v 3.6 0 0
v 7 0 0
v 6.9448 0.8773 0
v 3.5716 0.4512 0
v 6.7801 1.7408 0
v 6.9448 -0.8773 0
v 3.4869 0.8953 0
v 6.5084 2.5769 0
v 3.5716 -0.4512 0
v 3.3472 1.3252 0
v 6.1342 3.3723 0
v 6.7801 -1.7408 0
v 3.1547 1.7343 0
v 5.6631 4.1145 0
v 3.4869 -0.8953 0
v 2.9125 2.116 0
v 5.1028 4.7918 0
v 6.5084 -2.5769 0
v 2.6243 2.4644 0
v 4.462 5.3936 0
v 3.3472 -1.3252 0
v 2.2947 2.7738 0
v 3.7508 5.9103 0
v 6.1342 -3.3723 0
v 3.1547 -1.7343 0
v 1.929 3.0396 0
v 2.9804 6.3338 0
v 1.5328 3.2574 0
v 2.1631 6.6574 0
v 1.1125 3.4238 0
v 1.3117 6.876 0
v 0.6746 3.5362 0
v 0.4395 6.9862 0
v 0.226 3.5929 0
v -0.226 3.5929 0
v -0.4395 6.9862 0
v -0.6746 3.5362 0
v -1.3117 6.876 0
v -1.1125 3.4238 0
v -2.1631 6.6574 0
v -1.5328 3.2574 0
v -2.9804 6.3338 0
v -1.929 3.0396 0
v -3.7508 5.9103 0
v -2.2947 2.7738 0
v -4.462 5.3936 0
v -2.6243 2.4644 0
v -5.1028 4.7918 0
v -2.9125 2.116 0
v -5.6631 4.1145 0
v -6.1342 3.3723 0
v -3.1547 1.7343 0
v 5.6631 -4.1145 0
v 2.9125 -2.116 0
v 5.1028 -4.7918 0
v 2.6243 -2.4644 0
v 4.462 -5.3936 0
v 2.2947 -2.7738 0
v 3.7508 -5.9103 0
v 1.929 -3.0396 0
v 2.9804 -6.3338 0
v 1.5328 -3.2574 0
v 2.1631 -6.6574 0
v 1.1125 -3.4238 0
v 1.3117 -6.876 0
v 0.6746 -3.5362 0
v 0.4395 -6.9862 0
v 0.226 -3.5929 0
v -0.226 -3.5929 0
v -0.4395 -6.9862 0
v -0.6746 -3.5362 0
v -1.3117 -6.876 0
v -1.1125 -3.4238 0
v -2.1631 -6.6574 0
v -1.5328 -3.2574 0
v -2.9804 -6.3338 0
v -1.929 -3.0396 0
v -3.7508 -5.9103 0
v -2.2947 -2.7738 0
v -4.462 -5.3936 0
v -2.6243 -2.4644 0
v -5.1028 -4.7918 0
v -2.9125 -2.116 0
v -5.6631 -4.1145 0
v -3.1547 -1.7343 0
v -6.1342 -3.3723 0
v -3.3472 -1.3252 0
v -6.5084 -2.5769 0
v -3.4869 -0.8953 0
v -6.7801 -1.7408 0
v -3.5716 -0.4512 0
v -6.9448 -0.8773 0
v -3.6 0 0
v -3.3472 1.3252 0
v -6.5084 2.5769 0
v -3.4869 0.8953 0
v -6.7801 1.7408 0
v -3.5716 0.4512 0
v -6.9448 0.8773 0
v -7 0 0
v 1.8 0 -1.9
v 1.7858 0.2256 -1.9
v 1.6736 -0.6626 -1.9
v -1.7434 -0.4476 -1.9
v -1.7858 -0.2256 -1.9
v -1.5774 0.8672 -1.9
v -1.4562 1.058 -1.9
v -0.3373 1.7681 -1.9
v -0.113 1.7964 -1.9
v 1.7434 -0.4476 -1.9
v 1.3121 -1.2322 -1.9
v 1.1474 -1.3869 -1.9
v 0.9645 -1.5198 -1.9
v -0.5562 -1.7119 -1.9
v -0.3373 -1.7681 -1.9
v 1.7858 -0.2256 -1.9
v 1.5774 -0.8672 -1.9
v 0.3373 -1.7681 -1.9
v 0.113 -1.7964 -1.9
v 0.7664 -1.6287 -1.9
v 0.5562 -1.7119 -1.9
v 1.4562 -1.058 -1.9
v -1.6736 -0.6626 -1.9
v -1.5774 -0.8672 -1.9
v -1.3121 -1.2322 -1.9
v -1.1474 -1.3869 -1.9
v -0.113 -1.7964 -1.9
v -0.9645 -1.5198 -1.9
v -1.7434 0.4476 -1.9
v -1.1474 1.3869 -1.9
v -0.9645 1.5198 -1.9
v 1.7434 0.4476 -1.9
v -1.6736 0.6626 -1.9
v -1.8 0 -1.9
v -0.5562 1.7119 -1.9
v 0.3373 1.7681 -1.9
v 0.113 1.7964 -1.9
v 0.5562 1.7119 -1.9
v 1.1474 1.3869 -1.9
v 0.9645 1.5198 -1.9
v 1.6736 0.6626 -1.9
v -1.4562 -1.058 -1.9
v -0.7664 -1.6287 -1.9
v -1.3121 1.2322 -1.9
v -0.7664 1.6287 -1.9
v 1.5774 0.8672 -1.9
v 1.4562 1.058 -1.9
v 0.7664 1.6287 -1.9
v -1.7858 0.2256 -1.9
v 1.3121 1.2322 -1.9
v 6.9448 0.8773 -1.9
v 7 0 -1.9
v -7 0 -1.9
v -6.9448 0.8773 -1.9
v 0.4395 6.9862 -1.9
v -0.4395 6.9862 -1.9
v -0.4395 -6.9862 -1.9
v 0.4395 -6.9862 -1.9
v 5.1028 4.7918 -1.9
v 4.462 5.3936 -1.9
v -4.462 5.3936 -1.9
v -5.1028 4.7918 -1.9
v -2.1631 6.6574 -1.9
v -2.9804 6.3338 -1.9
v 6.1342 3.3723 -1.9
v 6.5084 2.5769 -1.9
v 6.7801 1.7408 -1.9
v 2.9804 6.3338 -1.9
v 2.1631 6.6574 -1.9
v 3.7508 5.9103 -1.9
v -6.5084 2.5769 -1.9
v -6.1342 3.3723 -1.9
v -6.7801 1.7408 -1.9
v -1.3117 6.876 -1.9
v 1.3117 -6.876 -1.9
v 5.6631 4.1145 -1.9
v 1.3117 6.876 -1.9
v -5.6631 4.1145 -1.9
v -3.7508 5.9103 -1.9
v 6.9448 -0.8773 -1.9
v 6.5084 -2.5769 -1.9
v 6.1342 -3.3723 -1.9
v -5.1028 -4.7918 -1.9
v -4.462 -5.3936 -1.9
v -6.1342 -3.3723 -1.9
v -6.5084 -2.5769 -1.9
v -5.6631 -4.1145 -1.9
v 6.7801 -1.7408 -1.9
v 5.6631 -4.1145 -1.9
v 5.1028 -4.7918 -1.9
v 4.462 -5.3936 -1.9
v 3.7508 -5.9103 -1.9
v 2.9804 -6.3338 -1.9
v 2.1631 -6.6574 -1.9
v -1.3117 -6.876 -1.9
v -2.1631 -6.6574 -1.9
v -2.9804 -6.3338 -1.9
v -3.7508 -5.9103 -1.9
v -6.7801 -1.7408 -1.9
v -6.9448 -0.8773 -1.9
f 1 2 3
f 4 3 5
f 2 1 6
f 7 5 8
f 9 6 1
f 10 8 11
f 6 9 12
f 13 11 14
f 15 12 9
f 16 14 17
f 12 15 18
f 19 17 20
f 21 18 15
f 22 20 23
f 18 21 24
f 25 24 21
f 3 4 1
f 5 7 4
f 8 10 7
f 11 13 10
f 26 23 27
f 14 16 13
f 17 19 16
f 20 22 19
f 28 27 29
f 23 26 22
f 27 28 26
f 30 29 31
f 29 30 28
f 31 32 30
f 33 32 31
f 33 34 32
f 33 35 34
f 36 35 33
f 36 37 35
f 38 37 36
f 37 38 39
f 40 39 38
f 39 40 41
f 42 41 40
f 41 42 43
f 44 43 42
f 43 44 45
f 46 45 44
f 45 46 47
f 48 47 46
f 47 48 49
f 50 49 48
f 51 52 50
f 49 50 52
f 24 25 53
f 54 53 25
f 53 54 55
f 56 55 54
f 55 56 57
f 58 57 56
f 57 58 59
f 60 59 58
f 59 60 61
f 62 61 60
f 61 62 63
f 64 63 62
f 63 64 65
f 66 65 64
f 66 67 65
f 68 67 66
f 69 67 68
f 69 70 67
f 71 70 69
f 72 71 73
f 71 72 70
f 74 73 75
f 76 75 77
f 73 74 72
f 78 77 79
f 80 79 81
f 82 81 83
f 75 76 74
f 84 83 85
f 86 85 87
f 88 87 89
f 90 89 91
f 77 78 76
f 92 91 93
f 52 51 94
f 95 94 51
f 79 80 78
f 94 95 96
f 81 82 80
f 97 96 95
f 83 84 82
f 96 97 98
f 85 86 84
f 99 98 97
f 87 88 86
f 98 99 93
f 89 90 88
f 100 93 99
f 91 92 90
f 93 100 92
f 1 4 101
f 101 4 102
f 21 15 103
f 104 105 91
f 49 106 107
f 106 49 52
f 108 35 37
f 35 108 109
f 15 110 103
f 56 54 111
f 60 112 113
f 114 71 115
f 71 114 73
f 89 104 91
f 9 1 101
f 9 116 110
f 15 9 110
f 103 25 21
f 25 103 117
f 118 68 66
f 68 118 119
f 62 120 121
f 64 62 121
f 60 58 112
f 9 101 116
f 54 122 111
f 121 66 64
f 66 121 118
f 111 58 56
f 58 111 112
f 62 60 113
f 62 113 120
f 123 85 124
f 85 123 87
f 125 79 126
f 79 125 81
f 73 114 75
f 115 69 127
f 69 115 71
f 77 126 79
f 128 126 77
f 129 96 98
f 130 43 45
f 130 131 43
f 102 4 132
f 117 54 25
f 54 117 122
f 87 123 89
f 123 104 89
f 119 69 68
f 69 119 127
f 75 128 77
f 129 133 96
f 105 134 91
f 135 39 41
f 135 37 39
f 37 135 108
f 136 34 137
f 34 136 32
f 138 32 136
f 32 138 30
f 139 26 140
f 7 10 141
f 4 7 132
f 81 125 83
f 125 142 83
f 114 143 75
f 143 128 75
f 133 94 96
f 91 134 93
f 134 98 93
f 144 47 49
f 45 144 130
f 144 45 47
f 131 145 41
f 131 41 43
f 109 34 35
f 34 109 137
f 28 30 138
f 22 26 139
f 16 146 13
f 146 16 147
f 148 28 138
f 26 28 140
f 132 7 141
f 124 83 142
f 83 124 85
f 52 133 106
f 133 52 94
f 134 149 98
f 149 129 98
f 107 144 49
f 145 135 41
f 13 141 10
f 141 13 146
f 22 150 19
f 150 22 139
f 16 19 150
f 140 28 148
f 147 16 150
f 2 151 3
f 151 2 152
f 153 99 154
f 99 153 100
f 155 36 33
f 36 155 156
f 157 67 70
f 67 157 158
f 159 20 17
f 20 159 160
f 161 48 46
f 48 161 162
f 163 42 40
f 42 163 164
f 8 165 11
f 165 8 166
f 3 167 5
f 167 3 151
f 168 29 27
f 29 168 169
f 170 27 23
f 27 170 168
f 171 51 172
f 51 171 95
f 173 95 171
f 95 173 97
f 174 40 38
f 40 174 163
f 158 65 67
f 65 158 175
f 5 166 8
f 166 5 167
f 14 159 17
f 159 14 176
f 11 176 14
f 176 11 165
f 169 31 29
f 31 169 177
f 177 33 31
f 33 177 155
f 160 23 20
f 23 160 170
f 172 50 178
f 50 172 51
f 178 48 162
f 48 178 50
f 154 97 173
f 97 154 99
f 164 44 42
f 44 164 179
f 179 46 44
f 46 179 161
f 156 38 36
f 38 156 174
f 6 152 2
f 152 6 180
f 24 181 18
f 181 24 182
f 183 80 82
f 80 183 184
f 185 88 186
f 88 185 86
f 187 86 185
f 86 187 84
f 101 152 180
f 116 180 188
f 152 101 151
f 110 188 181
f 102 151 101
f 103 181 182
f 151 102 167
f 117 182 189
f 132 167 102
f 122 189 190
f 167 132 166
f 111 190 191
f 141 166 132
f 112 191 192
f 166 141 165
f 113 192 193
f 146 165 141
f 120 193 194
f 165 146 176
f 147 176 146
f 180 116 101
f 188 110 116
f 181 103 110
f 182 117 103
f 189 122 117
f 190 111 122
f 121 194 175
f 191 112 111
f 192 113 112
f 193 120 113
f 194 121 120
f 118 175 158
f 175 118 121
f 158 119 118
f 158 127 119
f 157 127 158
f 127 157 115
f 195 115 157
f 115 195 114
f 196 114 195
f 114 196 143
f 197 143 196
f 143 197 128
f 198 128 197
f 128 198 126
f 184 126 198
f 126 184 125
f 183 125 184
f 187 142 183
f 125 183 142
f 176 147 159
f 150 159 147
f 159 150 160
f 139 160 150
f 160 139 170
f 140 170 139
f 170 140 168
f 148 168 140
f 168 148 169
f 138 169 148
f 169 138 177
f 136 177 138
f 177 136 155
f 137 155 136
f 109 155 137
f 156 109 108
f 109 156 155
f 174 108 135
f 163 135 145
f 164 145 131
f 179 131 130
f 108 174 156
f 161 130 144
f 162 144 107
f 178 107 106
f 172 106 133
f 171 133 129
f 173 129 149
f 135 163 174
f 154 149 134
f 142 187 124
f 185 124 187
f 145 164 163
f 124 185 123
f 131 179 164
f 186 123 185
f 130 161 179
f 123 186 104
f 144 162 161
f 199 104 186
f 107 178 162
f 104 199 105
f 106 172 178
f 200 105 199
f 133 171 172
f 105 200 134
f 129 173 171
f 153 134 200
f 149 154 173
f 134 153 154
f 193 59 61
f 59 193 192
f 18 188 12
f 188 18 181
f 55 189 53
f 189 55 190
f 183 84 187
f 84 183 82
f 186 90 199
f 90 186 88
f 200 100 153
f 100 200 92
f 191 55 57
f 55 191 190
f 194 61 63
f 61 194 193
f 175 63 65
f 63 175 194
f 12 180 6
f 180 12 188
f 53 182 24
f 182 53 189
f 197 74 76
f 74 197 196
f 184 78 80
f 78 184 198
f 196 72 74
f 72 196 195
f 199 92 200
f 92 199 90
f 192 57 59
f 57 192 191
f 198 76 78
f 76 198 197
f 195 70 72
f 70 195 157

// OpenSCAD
$fn = 50;


difference() {
	union() {
		translate(v = [0, 0, -1.9000000000]) {
			cylinder(h = 1.9000000000, r = 7.0000000000);
		}
	}
	union() {
		translate(v = [0, 0, 0]) {
			rotate(a = [0, 0, 0]) {
				difference() {
					union() {
						translate(v = [0, 0, -4.9000000000]) {
							cylinder(h = 4.9000000000, r = 1.5000000000);
						}
						translate(v = [0, 0, -1.9000000000]) {
							cylinder(h = 1.9000000000, r1 = 1.8000000000, r2 = 3.6000000000);
						}
						translate(v = [0, 0, -4.9000000000]) {
							cylinder(h = 4.9000000000, r = 1.8000000000);
						}
						translate(v = [0, 0, -4.9000000000]) {
							cylinder(h = 4.9000000000, r = 1.5000000000);
						}
					}
					union();
				}
			}
		}
	}
}
